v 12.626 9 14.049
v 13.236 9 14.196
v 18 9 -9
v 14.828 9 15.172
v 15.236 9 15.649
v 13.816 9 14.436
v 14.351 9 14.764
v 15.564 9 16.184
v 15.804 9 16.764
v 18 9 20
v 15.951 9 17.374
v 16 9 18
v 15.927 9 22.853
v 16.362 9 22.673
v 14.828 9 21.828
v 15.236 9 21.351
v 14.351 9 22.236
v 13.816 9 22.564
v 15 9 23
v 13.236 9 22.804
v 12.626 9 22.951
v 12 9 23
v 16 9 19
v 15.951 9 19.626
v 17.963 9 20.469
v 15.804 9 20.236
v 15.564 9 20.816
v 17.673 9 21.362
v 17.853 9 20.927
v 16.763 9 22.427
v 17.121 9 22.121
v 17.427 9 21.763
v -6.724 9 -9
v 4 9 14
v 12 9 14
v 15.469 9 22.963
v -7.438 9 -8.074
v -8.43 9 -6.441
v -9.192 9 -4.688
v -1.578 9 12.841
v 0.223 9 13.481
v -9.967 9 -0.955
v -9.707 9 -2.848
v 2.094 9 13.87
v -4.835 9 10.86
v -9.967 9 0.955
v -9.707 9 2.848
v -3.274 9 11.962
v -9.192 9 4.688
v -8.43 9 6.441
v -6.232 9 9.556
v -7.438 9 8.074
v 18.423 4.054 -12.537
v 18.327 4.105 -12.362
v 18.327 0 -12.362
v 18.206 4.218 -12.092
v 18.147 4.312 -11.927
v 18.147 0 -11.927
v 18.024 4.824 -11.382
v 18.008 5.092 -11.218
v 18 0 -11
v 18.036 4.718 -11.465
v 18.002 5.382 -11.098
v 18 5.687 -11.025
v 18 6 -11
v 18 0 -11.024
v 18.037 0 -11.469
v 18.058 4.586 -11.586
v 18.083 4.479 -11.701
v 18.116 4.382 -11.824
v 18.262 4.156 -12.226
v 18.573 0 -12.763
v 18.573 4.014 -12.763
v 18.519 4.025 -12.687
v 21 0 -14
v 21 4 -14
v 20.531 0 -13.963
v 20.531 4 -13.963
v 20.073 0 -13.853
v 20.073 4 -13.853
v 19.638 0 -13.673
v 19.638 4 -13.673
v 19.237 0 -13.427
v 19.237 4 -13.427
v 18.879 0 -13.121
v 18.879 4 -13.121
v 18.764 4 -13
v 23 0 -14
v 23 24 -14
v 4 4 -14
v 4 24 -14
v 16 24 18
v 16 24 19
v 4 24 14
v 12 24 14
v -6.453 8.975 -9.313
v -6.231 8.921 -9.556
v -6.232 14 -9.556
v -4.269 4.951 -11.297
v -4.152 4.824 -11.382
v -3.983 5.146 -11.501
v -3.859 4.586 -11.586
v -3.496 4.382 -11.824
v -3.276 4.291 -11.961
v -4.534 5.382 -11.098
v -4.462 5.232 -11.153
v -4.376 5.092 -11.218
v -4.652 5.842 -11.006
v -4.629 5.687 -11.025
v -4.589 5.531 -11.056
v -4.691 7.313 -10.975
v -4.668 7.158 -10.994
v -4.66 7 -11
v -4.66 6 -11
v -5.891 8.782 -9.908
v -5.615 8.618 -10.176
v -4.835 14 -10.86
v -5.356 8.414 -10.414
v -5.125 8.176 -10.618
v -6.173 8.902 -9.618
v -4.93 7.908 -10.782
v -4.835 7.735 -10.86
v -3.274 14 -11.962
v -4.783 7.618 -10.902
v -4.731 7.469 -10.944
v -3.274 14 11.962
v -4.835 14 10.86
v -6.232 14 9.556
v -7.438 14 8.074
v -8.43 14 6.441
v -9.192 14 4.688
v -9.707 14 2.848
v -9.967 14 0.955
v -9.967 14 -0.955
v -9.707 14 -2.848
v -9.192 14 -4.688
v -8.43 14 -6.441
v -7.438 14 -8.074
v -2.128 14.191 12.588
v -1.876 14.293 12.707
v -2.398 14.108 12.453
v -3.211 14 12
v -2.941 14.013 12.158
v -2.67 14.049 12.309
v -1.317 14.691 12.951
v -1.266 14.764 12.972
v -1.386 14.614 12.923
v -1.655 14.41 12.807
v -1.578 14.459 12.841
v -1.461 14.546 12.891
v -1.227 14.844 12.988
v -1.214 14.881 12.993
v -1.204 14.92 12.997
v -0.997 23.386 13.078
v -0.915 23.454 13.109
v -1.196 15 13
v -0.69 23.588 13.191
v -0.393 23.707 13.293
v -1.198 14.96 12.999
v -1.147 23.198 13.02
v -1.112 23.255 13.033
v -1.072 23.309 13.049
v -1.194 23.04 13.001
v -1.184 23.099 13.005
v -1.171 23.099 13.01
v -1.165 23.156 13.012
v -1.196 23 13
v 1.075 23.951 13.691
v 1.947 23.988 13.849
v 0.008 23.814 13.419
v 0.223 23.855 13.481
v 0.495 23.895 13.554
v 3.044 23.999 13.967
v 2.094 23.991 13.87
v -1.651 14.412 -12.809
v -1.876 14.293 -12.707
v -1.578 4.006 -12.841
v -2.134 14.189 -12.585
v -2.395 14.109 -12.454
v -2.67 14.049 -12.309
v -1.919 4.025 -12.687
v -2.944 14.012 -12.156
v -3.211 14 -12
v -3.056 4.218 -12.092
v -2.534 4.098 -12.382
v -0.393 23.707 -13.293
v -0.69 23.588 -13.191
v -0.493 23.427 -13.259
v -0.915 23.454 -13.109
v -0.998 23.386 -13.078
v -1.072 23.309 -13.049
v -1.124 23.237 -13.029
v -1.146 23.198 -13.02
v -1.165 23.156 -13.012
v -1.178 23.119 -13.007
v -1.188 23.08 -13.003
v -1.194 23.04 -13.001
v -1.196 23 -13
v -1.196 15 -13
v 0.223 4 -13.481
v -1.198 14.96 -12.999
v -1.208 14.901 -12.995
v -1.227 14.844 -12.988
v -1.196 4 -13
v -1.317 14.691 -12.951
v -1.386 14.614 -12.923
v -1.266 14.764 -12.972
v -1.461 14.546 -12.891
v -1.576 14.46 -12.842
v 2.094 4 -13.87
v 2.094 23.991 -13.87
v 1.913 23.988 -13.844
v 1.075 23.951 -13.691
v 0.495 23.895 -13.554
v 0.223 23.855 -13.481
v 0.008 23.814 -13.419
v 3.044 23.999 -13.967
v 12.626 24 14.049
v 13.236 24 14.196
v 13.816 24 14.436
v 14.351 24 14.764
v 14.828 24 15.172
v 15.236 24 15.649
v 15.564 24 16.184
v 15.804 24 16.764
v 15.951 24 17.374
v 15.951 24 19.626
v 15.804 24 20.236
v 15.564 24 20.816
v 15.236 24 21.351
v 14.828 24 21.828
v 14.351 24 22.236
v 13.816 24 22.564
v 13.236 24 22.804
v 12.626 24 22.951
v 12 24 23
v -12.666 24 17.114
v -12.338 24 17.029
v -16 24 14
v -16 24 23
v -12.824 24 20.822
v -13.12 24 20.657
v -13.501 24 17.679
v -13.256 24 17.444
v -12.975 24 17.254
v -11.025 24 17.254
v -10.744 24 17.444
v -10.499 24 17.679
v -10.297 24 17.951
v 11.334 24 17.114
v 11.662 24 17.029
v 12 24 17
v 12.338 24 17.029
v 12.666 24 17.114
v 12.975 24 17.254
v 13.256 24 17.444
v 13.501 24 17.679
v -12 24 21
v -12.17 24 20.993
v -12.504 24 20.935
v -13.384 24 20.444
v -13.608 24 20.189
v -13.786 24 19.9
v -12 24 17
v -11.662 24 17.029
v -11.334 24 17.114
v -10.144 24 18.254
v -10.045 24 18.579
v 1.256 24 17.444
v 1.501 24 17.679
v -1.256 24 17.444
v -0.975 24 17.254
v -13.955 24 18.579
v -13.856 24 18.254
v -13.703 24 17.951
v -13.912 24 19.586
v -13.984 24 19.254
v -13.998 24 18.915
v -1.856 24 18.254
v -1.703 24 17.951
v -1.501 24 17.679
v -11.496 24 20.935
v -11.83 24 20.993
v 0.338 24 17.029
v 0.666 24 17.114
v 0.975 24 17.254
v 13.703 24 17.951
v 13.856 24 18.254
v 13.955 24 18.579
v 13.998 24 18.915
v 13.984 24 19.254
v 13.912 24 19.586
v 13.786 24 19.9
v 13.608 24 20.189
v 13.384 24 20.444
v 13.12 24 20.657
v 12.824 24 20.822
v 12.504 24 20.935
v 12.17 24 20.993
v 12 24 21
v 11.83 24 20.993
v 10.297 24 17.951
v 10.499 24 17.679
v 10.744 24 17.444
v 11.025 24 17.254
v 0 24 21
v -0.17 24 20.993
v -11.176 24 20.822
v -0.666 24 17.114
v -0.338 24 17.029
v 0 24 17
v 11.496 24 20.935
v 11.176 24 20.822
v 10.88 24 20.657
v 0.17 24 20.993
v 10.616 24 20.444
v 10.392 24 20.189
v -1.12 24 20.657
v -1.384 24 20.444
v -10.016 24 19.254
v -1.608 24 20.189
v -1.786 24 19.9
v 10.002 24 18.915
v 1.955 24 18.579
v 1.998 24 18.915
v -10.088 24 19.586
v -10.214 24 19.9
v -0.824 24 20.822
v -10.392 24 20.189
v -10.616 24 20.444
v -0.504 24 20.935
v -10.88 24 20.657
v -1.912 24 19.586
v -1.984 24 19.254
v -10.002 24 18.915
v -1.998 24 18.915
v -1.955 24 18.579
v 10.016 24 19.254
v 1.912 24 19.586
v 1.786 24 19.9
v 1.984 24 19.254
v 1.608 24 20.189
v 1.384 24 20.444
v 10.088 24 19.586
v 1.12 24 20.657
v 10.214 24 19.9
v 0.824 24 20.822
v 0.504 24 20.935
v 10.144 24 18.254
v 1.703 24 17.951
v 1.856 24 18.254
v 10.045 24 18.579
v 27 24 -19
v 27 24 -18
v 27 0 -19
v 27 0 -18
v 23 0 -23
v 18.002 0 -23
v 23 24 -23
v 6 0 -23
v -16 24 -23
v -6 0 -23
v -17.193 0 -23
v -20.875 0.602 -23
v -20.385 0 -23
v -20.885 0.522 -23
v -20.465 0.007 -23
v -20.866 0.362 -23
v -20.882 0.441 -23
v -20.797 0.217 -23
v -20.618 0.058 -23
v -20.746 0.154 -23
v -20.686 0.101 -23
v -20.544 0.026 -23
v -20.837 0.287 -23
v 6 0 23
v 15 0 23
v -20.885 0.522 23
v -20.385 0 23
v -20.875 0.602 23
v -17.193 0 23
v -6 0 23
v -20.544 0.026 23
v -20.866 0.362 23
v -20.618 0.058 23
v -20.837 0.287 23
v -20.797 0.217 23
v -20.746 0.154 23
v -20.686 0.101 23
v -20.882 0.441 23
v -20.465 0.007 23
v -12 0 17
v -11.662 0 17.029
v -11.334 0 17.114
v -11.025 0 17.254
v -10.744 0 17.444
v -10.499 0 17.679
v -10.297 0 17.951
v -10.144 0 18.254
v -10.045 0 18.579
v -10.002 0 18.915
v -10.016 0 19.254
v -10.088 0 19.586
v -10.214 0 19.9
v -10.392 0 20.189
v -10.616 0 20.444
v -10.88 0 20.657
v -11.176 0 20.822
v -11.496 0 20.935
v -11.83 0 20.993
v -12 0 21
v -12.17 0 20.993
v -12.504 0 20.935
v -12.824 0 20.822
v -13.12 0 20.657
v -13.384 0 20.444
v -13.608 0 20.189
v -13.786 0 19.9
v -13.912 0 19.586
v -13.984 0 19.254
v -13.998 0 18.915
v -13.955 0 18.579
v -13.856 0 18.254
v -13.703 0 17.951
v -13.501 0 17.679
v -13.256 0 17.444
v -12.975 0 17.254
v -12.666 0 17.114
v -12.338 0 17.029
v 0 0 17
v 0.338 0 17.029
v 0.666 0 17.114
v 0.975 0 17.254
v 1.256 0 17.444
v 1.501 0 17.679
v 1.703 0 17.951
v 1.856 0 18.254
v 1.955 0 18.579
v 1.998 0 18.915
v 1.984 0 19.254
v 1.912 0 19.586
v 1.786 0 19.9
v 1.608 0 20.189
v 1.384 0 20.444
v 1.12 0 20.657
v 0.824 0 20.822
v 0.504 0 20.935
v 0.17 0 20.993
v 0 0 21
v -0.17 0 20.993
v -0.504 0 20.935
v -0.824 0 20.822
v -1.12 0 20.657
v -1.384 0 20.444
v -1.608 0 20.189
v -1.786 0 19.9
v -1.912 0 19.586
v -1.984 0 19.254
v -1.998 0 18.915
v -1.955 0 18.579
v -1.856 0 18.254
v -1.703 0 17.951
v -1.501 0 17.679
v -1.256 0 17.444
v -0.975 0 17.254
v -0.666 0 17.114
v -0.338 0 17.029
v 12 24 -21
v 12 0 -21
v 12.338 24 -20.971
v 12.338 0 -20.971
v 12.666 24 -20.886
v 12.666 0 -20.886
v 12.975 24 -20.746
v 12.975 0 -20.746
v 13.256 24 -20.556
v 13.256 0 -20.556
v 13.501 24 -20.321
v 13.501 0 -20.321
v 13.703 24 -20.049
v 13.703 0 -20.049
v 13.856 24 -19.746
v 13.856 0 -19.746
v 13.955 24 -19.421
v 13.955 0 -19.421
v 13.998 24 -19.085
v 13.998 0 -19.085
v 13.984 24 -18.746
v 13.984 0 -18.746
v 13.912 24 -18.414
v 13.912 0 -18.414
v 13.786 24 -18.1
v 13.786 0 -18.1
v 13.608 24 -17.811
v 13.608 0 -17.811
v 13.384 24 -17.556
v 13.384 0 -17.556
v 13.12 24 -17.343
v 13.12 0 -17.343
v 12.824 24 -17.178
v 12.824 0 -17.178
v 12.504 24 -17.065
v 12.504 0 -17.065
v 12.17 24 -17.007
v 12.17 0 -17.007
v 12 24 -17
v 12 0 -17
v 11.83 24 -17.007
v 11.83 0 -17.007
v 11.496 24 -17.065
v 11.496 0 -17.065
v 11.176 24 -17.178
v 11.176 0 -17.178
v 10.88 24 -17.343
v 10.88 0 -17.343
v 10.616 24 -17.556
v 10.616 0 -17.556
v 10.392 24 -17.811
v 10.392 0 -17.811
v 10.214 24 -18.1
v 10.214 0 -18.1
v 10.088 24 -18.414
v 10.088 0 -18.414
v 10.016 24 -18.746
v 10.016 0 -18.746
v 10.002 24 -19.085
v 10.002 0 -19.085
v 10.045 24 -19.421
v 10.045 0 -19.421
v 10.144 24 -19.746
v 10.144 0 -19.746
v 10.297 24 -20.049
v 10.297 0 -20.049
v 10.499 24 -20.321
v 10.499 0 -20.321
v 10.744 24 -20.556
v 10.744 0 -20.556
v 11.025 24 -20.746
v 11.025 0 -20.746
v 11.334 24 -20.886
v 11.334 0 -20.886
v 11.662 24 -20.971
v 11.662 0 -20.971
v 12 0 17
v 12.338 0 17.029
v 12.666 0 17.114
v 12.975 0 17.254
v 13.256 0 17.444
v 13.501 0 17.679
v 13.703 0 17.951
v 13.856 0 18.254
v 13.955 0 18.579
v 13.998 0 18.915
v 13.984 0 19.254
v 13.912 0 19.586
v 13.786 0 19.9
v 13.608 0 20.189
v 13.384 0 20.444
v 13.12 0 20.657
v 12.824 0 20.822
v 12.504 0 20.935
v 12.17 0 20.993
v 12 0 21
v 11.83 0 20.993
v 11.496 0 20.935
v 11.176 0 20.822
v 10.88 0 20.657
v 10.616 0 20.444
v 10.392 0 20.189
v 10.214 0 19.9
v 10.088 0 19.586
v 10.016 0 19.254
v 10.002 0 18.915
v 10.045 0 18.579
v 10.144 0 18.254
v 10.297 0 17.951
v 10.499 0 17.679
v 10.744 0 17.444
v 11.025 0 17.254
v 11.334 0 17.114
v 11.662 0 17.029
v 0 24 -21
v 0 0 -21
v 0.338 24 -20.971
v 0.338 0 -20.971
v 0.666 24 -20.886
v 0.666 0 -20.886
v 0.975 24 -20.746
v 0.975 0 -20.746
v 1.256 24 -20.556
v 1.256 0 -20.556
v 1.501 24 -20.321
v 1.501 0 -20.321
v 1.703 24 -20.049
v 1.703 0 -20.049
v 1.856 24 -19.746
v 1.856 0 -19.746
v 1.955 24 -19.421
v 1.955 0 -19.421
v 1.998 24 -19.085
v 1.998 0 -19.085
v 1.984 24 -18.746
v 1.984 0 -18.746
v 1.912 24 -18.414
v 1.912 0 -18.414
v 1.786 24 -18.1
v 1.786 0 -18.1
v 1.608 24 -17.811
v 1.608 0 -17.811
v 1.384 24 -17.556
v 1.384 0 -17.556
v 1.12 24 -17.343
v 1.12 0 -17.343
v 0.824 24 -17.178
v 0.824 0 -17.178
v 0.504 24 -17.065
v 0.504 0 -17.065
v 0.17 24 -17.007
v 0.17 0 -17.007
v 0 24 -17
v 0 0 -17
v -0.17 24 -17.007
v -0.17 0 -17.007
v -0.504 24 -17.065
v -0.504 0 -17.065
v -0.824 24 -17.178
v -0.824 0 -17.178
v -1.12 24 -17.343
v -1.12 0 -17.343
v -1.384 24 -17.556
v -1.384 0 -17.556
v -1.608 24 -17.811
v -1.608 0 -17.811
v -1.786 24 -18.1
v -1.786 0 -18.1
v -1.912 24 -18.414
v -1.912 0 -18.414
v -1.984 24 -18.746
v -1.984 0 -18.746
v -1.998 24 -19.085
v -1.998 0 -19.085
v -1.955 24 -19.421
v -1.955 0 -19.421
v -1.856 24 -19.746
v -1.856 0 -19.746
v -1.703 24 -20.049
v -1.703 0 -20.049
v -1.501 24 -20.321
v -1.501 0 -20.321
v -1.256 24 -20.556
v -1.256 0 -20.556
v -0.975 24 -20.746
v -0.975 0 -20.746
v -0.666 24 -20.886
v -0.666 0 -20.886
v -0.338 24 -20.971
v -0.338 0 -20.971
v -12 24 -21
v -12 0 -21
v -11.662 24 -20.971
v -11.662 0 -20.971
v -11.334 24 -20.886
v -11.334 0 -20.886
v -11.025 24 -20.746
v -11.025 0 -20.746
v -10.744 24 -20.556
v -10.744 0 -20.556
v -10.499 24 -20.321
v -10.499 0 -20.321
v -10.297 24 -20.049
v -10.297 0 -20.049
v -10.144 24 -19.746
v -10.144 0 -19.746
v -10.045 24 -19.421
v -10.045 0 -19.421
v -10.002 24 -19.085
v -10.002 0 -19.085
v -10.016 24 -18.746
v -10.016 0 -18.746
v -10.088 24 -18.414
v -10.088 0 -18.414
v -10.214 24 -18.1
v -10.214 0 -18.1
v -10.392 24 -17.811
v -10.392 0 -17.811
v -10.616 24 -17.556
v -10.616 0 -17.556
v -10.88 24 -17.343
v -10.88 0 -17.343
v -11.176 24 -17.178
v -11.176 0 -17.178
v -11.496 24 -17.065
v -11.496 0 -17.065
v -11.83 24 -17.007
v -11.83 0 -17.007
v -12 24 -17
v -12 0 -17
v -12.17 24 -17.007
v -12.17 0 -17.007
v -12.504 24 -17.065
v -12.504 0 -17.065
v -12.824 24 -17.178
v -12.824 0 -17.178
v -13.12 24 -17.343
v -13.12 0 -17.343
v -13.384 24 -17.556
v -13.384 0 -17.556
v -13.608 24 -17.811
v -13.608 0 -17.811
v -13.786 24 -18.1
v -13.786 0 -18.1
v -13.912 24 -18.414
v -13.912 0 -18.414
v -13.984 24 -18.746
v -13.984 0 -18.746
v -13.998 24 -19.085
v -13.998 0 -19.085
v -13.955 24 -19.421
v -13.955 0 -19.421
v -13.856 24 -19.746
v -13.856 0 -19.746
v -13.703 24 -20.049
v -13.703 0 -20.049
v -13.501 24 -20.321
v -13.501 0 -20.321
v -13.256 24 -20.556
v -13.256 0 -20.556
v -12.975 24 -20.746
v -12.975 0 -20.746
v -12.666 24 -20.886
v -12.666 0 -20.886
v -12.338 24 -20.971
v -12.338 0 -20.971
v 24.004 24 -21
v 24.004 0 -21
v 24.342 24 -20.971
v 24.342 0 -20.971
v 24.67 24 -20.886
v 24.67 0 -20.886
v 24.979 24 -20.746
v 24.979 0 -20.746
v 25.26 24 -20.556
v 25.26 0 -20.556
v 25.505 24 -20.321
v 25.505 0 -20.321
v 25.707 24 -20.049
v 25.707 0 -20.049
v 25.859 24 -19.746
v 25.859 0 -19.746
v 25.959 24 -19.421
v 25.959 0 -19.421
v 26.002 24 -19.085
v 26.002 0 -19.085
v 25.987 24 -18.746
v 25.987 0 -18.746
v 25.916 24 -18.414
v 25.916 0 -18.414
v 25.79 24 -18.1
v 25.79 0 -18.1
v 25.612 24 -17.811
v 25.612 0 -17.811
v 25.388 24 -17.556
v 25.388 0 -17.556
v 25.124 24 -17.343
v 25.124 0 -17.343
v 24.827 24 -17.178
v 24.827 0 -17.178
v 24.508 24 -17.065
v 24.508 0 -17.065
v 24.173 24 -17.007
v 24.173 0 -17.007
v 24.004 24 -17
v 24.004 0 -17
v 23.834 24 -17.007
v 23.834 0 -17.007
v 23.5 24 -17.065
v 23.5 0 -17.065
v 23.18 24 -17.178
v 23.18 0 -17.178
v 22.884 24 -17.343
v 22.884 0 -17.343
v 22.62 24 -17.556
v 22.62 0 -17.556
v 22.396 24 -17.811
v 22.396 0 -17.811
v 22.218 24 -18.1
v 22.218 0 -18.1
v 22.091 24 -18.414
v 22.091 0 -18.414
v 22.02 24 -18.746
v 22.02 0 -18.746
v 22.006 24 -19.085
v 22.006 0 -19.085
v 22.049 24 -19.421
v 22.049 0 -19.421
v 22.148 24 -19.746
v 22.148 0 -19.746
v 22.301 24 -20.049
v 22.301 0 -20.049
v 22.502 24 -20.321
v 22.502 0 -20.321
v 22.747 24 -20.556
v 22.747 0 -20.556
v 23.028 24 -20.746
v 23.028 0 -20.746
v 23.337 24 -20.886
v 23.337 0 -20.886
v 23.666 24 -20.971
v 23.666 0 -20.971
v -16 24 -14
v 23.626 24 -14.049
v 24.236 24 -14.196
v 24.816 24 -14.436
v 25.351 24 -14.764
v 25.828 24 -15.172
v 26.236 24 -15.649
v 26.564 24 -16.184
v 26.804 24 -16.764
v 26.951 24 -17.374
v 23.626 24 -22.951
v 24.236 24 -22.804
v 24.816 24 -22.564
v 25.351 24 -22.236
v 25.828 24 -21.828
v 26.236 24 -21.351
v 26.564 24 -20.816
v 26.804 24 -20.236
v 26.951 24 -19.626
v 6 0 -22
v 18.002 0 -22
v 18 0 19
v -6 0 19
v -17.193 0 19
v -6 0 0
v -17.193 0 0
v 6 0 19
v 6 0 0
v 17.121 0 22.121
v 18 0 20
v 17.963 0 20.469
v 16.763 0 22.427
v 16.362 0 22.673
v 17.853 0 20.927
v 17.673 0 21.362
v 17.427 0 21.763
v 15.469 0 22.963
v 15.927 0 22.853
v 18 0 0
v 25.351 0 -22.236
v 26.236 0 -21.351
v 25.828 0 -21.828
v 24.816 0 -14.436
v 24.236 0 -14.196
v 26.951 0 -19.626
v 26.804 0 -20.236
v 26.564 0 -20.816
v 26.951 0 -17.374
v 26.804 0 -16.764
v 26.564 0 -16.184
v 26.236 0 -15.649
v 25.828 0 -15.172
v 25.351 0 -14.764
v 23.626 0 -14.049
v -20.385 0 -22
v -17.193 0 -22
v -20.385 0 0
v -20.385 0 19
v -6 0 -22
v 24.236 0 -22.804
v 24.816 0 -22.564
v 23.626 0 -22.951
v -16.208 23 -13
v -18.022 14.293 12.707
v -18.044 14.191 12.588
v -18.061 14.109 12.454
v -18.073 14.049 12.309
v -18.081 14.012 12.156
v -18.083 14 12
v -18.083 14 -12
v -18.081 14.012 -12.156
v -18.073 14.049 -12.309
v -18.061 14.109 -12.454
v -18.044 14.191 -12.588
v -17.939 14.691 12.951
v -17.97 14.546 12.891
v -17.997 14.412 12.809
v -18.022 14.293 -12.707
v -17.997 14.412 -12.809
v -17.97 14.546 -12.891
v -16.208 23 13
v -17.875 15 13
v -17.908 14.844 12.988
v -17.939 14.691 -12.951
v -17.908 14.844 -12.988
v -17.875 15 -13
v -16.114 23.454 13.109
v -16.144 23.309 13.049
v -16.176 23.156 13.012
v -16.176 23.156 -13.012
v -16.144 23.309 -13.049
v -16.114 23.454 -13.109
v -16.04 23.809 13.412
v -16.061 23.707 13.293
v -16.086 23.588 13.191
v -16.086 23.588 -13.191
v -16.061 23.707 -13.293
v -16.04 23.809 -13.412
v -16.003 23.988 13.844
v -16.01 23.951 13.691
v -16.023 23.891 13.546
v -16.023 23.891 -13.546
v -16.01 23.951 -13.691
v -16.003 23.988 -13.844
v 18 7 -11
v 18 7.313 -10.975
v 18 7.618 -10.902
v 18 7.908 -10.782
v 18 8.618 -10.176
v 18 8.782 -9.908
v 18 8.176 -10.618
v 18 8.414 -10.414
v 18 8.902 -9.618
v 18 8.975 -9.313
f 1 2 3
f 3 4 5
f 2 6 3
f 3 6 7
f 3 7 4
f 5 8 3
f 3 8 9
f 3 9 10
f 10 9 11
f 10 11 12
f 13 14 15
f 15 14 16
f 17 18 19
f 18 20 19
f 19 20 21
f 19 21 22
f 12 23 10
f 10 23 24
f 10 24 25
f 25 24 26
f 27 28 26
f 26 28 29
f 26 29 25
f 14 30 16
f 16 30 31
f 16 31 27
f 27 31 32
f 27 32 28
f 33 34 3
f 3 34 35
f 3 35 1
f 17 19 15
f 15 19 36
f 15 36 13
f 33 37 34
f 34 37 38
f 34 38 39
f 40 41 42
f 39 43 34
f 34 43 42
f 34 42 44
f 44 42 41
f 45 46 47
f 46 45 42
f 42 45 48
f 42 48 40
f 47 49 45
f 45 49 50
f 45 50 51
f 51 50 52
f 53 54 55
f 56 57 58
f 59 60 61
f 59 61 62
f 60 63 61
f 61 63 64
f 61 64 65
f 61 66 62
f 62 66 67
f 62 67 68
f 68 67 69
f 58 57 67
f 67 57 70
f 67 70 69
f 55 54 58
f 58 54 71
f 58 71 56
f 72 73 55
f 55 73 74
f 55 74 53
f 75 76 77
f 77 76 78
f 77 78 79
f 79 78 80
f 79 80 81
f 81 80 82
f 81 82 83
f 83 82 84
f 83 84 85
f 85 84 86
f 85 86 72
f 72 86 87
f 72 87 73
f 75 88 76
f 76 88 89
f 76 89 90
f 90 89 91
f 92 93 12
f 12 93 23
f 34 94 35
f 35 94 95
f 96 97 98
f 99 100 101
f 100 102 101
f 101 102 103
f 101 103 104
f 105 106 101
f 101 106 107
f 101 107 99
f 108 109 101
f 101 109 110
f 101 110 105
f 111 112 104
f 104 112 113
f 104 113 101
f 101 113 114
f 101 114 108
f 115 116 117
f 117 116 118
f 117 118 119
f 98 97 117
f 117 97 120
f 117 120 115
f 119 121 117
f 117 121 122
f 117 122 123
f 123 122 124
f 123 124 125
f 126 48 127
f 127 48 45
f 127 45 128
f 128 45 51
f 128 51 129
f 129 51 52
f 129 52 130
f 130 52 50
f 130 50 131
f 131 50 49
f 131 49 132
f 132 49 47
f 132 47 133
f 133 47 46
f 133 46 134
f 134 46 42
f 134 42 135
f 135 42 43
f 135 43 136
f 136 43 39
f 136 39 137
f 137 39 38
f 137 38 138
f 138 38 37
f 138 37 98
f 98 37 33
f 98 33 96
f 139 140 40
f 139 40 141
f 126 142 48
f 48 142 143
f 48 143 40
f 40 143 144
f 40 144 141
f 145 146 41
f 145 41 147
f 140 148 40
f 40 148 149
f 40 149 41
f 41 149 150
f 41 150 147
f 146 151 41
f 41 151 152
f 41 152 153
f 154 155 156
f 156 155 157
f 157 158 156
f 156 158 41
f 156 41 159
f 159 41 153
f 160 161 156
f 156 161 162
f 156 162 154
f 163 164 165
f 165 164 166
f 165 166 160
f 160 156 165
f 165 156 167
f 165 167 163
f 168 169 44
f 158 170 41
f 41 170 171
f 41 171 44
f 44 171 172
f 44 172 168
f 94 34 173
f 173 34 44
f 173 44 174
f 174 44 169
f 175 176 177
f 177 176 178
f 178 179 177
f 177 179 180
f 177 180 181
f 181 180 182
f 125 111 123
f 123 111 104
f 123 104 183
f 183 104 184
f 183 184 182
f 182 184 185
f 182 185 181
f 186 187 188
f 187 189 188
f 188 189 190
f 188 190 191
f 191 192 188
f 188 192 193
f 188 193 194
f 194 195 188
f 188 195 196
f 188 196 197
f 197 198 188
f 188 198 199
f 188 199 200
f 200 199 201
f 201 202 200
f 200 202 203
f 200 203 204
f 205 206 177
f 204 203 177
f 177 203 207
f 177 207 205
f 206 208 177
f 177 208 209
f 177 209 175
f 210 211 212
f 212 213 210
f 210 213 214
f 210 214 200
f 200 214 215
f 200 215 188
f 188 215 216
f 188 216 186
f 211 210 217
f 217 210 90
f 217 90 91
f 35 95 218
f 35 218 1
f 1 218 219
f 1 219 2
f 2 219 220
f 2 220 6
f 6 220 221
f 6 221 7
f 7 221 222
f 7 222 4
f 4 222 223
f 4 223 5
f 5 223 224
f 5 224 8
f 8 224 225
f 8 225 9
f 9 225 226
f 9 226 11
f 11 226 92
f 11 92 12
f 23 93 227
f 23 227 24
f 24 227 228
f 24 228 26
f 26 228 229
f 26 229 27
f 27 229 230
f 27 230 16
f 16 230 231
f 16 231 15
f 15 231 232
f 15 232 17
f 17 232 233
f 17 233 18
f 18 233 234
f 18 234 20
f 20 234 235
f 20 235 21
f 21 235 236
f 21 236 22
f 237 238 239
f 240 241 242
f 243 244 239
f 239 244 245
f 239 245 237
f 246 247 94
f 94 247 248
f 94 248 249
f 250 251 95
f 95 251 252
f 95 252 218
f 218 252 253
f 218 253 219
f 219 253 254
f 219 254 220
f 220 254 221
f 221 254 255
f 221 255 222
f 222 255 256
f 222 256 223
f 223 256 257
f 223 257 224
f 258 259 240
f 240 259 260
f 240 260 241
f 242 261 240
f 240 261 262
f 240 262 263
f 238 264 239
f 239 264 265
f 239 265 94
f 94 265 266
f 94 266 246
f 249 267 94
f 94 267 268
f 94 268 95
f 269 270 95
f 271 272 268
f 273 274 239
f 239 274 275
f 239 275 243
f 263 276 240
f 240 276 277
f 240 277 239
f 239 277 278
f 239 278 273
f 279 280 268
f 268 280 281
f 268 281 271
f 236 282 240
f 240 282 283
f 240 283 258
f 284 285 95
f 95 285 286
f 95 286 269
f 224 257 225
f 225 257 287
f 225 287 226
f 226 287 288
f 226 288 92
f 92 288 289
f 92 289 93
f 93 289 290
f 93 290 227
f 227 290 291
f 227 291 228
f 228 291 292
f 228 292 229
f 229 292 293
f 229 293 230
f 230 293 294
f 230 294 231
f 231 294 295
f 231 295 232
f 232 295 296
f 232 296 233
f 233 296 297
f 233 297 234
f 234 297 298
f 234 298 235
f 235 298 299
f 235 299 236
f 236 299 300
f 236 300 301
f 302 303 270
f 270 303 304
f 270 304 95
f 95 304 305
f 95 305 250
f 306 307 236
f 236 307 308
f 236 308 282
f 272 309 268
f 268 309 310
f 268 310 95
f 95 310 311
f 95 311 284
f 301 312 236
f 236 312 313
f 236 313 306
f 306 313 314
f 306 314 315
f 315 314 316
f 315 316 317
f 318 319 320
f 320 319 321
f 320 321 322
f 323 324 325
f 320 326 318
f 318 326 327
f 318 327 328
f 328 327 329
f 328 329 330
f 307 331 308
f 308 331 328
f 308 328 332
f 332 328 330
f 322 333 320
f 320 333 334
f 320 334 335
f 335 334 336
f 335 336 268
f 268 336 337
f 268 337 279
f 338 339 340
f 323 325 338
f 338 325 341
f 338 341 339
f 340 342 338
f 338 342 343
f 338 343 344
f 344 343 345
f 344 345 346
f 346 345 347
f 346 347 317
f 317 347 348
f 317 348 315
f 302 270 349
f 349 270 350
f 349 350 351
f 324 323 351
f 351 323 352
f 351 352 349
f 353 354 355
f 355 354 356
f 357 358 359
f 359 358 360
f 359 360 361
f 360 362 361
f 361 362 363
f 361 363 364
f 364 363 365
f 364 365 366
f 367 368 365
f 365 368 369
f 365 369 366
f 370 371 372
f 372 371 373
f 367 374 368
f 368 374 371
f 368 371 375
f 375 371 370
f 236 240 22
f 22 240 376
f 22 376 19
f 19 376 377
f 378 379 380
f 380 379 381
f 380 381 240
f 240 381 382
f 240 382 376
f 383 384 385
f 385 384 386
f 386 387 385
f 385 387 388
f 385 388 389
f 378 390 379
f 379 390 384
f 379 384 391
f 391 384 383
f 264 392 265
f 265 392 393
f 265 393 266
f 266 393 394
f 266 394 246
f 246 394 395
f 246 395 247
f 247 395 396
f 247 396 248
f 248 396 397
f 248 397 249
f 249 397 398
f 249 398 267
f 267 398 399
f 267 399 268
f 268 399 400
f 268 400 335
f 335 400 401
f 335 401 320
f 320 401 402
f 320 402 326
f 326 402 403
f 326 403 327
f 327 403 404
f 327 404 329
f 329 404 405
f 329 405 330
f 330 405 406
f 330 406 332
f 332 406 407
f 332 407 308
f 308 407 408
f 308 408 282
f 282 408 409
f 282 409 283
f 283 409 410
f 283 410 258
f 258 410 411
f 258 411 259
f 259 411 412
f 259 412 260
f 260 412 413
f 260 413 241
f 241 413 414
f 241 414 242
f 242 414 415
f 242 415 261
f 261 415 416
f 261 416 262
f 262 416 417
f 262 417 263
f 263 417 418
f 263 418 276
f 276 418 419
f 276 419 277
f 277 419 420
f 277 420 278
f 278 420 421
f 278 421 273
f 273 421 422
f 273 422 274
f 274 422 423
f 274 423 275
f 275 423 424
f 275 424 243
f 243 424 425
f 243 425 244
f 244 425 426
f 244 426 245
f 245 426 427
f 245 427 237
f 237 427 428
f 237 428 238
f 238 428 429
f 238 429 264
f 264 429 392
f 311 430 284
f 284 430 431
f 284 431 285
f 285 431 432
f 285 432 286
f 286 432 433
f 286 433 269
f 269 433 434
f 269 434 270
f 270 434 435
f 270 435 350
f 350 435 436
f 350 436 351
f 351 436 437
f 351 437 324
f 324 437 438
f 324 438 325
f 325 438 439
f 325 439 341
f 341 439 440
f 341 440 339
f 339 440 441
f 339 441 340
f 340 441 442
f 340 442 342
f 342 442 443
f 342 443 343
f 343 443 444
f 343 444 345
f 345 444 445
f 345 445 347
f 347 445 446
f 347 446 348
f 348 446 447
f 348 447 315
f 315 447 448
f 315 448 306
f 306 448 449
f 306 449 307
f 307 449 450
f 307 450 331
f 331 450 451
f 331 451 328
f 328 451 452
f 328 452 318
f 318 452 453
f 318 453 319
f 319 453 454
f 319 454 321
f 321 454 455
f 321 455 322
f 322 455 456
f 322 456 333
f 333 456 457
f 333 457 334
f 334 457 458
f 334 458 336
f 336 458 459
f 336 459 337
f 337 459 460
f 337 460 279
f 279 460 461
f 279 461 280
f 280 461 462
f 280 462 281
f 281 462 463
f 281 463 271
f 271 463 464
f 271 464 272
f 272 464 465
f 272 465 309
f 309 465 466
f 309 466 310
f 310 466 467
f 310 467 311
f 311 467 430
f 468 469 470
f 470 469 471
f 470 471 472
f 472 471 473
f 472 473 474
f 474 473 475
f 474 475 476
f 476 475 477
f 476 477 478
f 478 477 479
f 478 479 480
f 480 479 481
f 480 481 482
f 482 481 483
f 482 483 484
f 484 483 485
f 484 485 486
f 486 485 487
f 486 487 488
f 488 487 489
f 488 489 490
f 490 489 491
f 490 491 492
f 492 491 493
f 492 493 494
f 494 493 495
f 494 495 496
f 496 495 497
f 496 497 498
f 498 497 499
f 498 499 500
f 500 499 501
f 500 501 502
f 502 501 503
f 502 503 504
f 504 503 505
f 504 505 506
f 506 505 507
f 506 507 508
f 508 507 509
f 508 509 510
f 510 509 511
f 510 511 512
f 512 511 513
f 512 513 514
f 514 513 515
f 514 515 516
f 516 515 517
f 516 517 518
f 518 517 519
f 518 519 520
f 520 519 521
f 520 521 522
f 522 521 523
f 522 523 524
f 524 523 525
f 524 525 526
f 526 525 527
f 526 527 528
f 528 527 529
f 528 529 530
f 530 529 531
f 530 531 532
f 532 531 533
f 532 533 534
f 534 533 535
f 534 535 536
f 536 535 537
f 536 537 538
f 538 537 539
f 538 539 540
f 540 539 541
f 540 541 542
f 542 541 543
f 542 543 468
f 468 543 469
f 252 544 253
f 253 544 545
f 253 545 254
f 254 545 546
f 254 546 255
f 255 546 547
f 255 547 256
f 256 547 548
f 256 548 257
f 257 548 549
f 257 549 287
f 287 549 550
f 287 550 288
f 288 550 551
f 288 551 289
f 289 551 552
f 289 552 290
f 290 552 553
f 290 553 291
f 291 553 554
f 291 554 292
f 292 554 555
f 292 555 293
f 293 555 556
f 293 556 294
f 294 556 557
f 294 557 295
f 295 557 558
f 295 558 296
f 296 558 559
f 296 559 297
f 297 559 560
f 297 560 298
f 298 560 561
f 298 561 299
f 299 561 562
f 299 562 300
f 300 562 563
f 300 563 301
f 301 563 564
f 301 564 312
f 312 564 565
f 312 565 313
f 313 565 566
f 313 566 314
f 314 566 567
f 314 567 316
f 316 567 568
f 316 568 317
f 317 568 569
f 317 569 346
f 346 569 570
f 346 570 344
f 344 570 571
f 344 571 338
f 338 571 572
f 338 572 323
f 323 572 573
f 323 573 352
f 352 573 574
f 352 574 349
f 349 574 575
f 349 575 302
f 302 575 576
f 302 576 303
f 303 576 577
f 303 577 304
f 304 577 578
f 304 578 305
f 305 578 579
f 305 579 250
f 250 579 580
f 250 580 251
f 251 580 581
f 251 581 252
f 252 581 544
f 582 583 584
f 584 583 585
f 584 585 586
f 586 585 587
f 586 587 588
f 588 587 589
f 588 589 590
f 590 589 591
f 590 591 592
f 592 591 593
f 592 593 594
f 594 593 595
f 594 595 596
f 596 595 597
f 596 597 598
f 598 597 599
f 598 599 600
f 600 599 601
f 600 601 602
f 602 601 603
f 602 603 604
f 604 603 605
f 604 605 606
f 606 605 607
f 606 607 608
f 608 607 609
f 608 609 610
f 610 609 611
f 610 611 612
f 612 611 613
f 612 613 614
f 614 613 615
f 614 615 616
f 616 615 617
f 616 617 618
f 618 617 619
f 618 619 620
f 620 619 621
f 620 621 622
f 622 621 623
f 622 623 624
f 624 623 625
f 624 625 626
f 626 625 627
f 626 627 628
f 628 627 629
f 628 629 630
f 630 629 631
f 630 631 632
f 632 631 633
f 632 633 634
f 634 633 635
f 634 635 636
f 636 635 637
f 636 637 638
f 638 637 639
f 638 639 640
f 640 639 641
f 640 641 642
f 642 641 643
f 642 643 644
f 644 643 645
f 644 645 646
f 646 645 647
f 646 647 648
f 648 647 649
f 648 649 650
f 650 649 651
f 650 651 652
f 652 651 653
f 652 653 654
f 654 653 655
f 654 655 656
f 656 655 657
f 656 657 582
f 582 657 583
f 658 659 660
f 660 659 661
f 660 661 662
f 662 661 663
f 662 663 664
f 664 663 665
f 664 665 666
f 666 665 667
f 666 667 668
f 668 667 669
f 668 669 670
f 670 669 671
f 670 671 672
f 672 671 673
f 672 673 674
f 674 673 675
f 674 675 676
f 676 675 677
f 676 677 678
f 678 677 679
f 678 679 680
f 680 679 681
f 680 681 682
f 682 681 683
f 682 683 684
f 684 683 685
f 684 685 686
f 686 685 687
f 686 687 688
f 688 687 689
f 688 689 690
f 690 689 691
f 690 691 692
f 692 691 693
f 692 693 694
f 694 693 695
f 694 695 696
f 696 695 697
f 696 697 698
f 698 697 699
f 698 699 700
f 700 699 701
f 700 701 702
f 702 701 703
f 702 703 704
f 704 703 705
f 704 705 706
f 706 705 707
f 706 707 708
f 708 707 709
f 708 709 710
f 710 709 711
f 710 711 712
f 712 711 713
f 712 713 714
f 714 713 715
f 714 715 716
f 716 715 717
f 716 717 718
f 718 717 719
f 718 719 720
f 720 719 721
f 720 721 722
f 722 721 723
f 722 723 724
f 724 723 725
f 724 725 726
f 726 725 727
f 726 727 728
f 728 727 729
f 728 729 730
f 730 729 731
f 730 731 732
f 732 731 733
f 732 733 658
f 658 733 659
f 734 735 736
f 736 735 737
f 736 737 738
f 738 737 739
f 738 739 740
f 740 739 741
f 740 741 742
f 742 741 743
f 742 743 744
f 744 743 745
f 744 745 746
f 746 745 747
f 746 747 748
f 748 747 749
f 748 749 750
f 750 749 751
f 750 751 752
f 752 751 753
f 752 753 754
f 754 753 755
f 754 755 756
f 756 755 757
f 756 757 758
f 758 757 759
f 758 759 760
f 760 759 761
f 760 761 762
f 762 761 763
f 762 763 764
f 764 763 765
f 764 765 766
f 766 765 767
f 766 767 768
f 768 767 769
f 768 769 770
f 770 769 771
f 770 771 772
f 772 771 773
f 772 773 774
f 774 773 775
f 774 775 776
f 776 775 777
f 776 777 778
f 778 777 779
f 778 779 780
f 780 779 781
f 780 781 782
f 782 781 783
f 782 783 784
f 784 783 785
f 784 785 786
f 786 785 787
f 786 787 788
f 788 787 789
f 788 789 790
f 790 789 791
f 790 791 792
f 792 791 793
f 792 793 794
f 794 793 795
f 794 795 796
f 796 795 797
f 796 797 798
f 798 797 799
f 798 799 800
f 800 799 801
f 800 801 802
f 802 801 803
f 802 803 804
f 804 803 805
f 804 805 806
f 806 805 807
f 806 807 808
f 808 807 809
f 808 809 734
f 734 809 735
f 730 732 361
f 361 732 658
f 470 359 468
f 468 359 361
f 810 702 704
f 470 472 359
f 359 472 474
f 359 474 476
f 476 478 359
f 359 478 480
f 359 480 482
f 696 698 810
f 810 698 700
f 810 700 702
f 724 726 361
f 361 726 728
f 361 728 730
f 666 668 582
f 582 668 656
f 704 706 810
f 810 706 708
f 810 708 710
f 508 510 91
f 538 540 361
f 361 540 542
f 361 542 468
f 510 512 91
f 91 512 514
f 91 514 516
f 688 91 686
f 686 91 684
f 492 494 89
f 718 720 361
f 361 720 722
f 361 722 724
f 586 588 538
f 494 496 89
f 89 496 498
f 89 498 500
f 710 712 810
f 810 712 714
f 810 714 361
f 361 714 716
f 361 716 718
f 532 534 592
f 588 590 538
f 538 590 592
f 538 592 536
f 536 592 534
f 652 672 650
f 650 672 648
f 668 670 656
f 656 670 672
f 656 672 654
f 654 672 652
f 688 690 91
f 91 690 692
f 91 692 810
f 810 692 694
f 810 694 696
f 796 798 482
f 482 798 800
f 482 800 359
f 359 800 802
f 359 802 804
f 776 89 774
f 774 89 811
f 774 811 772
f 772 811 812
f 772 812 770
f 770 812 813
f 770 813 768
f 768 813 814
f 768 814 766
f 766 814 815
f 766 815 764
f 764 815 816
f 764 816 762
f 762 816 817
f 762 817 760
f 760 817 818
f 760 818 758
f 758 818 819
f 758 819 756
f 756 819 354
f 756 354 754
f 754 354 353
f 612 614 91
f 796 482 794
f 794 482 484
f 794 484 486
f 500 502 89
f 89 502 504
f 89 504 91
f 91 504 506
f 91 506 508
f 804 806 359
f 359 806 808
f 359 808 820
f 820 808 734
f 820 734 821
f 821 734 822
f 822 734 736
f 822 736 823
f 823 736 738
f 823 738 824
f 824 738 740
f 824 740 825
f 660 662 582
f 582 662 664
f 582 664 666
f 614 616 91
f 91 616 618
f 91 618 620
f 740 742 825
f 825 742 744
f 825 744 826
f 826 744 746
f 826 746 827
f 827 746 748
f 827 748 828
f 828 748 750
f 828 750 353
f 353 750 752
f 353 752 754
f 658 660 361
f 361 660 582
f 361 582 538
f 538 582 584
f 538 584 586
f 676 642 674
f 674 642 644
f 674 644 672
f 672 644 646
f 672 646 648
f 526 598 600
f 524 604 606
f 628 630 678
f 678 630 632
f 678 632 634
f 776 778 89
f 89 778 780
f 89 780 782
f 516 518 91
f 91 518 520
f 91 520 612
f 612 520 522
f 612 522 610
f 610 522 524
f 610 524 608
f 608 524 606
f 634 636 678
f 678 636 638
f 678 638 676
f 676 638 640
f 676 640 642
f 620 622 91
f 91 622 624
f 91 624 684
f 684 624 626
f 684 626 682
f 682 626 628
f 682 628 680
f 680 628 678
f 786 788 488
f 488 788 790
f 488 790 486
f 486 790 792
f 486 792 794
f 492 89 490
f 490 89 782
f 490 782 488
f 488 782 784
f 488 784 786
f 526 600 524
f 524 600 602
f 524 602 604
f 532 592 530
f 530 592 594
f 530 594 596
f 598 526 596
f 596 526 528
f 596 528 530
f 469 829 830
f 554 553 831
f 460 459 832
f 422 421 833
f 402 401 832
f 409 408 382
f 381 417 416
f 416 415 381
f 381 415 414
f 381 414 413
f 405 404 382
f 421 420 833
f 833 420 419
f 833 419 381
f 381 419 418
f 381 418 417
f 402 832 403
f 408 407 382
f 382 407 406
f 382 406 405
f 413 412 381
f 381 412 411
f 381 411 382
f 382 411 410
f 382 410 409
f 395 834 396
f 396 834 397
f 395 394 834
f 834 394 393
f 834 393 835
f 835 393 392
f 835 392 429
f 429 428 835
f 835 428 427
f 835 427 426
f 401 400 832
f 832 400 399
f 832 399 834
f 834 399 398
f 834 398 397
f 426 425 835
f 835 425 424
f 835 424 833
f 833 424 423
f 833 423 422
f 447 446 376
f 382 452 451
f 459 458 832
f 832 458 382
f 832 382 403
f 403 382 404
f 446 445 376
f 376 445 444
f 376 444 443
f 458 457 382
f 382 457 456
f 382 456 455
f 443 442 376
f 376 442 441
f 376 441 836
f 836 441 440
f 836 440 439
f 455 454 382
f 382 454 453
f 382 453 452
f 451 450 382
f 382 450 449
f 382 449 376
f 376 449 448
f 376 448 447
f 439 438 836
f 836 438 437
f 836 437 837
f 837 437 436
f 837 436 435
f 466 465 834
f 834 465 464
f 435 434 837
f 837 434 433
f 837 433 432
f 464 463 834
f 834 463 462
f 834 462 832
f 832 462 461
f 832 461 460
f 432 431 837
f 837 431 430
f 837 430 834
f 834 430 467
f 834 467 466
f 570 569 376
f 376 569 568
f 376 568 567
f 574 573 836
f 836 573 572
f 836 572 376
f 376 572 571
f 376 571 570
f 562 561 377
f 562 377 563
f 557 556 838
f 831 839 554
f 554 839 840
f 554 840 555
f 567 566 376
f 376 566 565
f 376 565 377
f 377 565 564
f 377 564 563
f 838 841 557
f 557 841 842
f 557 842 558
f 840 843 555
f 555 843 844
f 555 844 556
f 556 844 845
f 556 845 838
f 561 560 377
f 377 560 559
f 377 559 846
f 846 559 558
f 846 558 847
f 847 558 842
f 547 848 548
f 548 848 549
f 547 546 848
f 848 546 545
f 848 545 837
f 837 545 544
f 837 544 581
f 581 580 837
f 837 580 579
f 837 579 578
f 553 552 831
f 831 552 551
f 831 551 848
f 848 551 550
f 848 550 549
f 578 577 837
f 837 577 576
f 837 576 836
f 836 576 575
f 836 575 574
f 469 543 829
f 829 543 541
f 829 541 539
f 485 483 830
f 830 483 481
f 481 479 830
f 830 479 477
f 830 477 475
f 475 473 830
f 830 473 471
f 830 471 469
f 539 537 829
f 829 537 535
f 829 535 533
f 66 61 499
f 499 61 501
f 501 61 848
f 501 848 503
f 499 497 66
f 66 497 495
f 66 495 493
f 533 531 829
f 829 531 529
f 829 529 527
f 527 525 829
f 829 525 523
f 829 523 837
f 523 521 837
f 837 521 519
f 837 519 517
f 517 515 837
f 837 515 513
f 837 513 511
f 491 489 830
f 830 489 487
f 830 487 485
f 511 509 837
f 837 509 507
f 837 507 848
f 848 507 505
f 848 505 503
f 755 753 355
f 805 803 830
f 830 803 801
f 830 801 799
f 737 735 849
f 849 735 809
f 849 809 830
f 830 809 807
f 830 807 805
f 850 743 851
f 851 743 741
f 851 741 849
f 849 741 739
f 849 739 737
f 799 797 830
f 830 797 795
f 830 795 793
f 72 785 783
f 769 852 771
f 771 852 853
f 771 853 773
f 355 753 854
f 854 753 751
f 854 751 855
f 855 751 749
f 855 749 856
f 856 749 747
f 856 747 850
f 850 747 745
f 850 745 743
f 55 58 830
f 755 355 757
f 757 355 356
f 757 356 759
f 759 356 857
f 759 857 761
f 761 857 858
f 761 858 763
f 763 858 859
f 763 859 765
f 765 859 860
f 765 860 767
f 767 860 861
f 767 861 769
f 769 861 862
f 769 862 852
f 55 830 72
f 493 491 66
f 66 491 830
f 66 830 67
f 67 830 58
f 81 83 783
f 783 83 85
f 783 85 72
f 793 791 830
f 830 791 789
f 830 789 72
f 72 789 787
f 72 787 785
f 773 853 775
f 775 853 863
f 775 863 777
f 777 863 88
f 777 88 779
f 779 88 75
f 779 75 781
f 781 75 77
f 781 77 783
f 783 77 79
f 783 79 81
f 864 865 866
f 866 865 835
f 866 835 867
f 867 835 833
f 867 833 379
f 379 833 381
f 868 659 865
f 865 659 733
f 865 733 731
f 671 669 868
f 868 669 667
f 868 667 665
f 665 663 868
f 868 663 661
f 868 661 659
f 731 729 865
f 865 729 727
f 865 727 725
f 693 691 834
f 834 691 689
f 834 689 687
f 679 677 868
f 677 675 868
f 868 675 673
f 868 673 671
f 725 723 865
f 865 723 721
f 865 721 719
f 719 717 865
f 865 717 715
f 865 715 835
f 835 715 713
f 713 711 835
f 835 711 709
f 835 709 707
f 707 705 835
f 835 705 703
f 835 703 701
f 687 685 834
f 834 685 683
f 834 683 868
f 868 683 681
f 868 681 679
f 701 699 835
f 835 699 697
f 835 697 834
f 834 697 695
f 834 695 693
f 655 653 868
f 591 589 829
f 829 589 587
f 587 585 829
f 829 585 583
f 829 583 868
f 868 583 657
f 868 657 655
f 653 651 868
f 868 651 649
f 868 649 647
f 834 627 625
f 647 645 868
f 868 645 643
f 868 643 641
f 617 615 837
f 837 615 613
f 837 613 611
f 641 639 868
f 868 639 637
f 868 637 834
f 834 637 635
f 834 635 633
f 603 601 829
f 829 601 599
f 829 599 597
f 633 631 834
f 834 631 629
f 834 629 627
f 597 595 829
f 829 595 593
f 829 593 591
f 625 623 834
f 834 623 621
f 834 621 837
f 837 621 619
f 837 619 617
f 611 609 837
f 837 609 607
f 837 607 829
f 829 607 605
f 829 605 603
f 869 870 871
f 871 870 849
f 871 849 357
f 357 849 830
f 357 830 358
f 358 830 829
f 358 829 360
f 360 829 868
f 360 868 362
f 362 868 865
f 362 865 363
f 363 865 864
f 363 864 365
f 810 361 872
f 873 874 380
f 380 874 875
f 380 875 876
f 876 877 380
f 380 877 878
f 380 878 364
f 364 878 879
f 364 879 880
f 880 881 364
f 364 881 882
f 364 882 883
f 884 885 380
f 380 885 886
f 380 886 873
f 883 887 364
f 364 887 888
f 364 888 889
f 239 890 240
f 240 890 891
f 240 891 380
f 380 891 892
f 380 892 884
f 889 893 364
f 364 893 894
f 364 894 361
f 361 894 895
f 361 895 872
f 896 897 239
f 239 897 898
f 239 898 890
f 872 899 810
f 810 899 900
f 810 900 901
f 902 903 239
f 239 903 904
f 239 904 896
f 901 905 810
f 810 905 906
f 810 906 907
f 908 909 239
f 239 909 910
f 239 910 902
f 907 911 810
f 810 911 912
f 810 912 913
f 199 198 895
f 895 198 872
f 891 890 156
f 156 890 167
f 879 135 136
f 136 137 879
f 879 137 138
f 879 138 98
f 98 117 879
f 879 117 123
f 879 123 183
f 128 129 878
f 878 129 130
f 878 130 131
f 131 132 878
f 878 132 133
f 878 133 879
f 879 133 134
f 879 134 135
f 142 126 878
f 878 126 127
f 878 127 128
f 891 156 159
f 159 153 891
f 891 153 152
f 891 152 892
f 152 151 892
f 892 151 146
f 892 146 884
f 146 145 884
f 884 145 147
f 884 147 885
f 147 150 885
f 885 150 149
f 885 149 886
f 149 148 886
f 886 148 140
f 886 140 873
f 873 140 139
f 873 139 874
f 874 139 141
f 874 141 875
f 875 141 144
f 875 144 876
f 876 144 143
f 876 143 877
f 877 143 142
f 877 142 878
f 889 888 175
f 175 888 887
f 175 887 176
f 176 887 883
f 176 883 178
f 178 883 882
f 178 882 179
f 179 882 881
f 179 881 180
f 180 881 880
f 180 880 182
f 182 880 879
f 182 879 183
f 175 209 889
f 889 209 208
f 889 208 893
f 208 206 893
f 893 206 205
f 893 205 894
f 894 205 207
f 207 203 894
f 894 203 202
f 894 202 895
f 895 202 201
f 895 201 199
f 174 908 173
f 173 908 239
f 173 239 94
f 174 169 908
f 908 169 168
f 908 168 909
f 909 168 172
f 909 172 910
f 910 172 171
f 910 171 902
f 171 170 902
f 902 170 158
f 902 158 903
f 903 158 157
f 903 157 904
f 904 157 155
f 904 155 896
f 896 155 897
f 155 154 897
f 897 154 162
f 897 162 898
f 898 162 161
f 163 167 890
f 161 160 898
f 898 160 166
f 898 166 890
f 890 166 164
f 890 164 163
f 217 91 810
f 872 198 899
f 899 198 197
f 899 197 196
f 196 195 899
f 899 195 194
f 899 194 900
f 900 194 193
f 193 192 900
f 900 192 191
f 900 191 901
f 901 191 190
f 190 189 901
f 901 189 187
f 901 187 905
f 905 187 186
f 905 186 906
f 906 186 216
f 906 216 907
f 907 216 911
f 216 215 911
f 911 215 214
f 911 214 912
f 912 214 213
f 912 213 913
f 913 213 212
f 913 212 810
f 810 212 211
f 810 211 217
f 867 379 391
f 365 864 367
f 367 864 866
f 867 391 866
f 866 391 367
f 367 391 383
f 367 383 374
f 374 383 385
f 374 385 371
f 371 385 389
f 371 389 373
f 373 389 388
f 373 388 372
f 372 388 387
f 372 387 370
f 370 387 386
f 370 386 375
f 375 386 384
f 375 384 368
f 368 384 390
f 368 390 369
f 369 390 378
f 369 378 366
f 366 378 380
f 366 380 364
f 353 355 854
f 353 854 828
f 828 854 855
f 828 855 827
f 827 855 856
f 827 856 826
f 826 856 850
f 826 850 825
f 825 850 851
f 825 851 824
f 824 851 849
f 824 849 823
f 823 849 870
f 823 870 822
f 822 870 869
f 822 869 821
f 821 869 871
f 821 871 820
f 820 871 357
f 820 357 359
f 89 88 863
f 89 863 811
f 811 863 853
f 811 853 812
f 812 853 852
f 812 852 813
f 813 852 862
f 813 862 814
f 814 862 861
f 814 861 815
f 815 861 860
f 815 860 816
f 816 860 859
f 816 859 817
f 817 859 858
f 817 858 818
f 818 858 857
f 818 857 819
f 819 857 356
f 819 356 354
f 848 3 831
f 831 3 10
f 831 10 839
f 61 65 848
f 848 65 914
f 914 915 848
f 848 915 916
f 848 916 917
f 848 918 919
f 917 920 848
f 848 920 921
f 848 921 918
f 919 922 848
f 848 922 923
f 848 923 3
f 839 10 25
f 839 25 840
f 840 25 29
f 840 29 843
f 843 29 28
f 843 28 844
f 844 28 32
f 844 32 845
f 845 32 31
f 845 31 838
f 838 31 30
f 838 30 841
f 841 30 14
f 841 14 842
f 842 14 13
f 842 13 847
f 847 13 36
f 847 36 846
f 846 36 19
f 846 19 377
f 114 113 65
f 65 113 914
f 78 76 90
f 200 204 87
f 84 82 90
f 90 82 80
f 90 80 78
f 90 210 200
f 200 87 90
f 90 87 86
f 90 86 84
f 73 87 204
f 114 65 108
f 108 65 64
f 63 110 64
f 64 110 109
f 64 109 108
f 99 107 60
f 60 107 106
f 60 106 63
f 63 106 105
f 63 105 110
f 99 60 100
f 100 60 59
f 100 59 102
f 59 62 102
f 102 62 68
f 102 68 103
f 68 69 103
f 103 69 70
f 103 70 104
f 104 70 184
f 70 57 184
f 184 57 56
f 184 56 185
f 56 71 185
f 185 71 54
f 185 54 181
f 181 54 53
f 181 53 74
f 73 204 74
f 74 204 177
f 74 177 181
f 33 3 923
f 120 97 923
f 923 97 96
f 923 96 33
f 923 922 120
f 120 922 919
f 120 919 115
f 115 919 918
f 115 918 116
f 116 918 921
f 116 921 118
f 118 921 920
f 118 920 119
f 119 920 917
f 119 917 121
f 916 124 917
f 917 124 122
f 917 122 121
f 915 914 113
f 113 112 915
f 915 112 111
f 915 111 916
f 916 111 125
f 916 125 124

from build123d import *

# Parameters (mm, degrees)
SKETCH2_R           = 2
SKETCH2_R_2         = 2.0000000000000004
SKETCH2_R_3         = 2.0000000000000036
BOSS_EXTRUDE1_DEPTH = 24
BOSS_EXTRUDE2_DEPTH = 46
CUT_EXTRUDE1_START  = -10
CUT_EXTRUDE1_DEPTH  = 10
FILLET1_R           = 1
FILLET2_R           = 0.5
FILLET3_R           = 4
BOSS_EXTRUDE3_START = -9
BOSS_EXTRUDE3_DEPTH = 9
FILLET4_R           = 3
CUT_EXTRUDE2_START  = -5
CUT_EXTRUDE2_DEPTH  = 5
FILLET5_R           = 2


with BuildPart() as part:
    # Sketch2 → Boss-Extrude1 (new body)
    with BuildSketch(Plane(origin=(0, 0, 0), x_dir=(1, 0, 0), z_dir=(0, 1, 0))):
        with BuildLine():
            ThreePointArc((-10.00000000000001, 1.71e-15), (-7.224972160321737, 8.36660026534089), (3.0642e-13, 13.41640786499884))
            ThreePointArc((3.0642e-13, 13.41640786499884), (1.9788258499060016, 13.85333371629342), (4.000000000000001, 14.00000000000001))
            Line((4, 14.00000000000001), (27, 14))
            Line((27, 14), (27, 23.000000000000007))
            Line((27, 23.000000000000007), (-16, 23))
            Line((-16, 23.000000000000004), (-16, -22.999999999999996))
            Line((-16, -22.999999999999996), (15.999999999999996, -22.999999999999993))
            Line((15.999999999999996, -22.999999999999993), (15.999999999999996, -14))
            Line((15.999999999999996, -14), (4, -14.00000000000001))
            ThreePointArc((3.9999999999999973, -14.00000000000001), (-5.899494936611674, -9.899494936611672), (-10.00000000000001, 1.71e-15))
        make_face()
        with Locations(Location((-11.999999999999995, -19, 0), (0, 0, 270))):
            Circle(SKETCH2_R, mode=Mode.SUBTRACT)
        with Locations(Location((4.65e-15, -19, 0), (0, 0, 270))):
            Circle(SKETCH2_R_2, mode=Mode.SUBTRACT)
        with Locations(Location((11.999999999999995, -19, 0), (0, 0, 270))):
            Circle(SKETCH2_R, mode=Mode.SUBTRACT)
        with Locations(Location((-12, 19, 0), (0, 0, 270))):
            Circle(SKETCH2_R_2, mode=Mode.SUBTRACT)
        with Locations(Location((4.7e-16, 19, 0), (0, 0, 270))):
            Circle(SKETCH2_R, mode=Mode.SUBTRACT)
        with Locations(Location((12, 19, 0), (0, 0, 270))):
            Circle(SKETCH2_R, mode=Mode.SUBTRACT)
        with Locations(Location((24.003693078979538, 19, 0), (0, 0, 270))):
            Circle(SKETCH2_R_3, mode=Mode.SUBTRACT)
    extrude(amount=BOSS_EXTRUDE1_DEPTH)

    # Sketch4 → Boss-Extrude2 (add)
    with BuildSketch(Plane.XY.offset(22.999999999999993)):
        Polygon((-21.000000000000004, -1.04e-15), (-16.000000000000004, 24), (-16.000000000000004, 0), align=None)
    extrude(amount=-BOSS_EXTRUDE2_DEPTH)

    # Sketch5 → Cut-Extrude1 (cut)
    with BuildSketch(Plane(origin=(0, 24, 0), x_dir=(1, 0, 0), z_dir=(0, 1, 0)).offset(CUT_EXTRUDE1_START)):
        with BuildLine():
            Line((-16, 0), (-10.000000000000007, 0))
            ThreePointArc((-10.000000000000007, 3.5391e-13), (-7.591939740998584, 7.850282354225094), (-1.1961524227063602, 13.000000000000117))
            Line((-1.196152422706339, 13), (-16, 12.999999999999998))
            Line((-16, 13.000000000000004), (-16, 0))
        make_face()
        Polygon((-21.000000000000004, 0), (-16, 0), (-16, 13.000000000000004), (-21.000000000000004, 12.999999999999998), align=None)
        with BuildLine():
            ThreePointArc((-1.1961524227063673, -13.000000000000114), (-7.591939740998785, -7.850282354224801), (-10.000000000000007, 3.5391e-13))
            Line((-10.000000000000007, 0), (-16, 0))
            Line((-16, 0), (-16, -13))
            Line((-15.999999999999998, -13.000000000000002), (-1.1961524227063371, -13))
        make_face()
        Polygon((-16, -13), (-16, 0), (-21.000000000000004, 0), (-21, -13), align=None)
    extrude(amount=CUT_EXTRUDE1_DEPTH, mode=Mode.SUBTRACT)

    # Fillet1
    fillet1_edges = [part.edges().sort_by_distance(p)[0] for p in [
        (-9.639742878019842, 14, -13.000000000000032),
        (-8.598076211353176, 24, 13.000000000000036),
        (-9.639742878019844, 14, 13.000000000000032),
        (-8.598076211353174, 24, -13.000000000000036),
    ]]
    fillet(fillet1_edges, radius=FILLET1_R - 0.0001)  # a hair under: the kernel refuses the full size

    # Fillet2
    fillet2_edges = [part.edges().sort_by_distance(p)[0] for p in [
        (-21, -1.04e-15, -7.11e-15),
    ]]
    fillet(fillet2_edges, radius=FILLET2_R)

    # Fillet3
    fillet3_edges = [part.edges().sort_by_distance(p)[0] for p in [
        (15.999999999999996, 12, 14),
        (15.999999999999996, 12, 22.999999999999993),
        (27, 12, -23.000000000000007),
        (27, 12, -14),
    ]]
    fillet(fillet3_edges, radius=FILLET3_R)

    # Sketch6 → Boss-Extrude3 (add)
    with BuildSketch(Plane.XZ.offset(BOSS_EXTRUDE3_START)):
        with BuildLine():
            ThreePointArc((4, 14.00000000000001), (-10.00000000000001, 8.6e-16), (3.9999999999999982, -14.00000000000001))
            Line((3.9999999999999964, -14.00000000000001), (18.00000000000001, -13.999999999999998))
            Line((18.00000000000001, -14.000000000000004), (18.00000000000001, 22.999999999999996))
            Line((18.00000000000001, 22.999999999999993), (11.999999999999996, 22.999999999999993))
            ThreePointArc((11.999999999999996, 22.999999999999993), (14.828427124746188, 21.828427124746185), (15.999999999999998, 18.999999999999993))
            Line((15.999999999999996, 18.999999999999993), (15.999999999999996, 18.000000000000007))
            ThreePointArc((15.999999999999996, 18.000000000000007), (14.828427124746185, 15.171572875253815), (11.999999999999993, 14.000000000000005))
            Line((11.999999999999993, 14.000000000000007), (4, 14.000000000000009))
        make_face()
    extrude(amount=BOSS_EXTRUDE3_DEPTH)

    # Fillet4
    fillet4_edges = [part.edges().sort_by_distance(p)[0] for p in [
        (18.00000000000001, 4.5, 22.999999999999993),
        (18.00000000000001, 4.5, -14),
    ]]
    fillet(fillet4_edges, radius=FILLET4_R)

    # Sketch7 → Cut-Extrude2 (cut)
    with BuildSketch(Plane(origin=(0, 9, 0), x_dir=(1, 0, 0), z_dir=(0, 1, 0)).offset(CUT_EXTRUDE2_START)):
        with BuildLine():
            Line((-4.66025403784441, 10.999999999999995), (18.00000000000001, 10.999999999999995))
            ThreePointArc((18.00000000000001, 10.999999999999995), (18.878679656440365, 13.121320343559638), (21.00000000000001, 13.999999999999995))
            Line((21.00000000000001, 13.999999999999995), (4, 14.00000000000001))
            ThreePointArc((4, 14.000000000000009), (-0.5825756949558523, 13.228756555322958), (-4.660254037844406, 10.999999999999995))
        make_face()
    extrude(amount=CUT_EXTRUDE2_DEPTH, mode=Mode.SUBTRACT)

    # Fillet5
    fillet5_edges = [part.edges().sort_by_distance(p)[0] for p in [
        (6.6698729810778, 9, -10.999999999999995),
        (6.6698729810778, 4, -10.999999999999995),
    ]]
    fillet(fillet5_edges, radius=FILLET5_R)


solid = part.part
